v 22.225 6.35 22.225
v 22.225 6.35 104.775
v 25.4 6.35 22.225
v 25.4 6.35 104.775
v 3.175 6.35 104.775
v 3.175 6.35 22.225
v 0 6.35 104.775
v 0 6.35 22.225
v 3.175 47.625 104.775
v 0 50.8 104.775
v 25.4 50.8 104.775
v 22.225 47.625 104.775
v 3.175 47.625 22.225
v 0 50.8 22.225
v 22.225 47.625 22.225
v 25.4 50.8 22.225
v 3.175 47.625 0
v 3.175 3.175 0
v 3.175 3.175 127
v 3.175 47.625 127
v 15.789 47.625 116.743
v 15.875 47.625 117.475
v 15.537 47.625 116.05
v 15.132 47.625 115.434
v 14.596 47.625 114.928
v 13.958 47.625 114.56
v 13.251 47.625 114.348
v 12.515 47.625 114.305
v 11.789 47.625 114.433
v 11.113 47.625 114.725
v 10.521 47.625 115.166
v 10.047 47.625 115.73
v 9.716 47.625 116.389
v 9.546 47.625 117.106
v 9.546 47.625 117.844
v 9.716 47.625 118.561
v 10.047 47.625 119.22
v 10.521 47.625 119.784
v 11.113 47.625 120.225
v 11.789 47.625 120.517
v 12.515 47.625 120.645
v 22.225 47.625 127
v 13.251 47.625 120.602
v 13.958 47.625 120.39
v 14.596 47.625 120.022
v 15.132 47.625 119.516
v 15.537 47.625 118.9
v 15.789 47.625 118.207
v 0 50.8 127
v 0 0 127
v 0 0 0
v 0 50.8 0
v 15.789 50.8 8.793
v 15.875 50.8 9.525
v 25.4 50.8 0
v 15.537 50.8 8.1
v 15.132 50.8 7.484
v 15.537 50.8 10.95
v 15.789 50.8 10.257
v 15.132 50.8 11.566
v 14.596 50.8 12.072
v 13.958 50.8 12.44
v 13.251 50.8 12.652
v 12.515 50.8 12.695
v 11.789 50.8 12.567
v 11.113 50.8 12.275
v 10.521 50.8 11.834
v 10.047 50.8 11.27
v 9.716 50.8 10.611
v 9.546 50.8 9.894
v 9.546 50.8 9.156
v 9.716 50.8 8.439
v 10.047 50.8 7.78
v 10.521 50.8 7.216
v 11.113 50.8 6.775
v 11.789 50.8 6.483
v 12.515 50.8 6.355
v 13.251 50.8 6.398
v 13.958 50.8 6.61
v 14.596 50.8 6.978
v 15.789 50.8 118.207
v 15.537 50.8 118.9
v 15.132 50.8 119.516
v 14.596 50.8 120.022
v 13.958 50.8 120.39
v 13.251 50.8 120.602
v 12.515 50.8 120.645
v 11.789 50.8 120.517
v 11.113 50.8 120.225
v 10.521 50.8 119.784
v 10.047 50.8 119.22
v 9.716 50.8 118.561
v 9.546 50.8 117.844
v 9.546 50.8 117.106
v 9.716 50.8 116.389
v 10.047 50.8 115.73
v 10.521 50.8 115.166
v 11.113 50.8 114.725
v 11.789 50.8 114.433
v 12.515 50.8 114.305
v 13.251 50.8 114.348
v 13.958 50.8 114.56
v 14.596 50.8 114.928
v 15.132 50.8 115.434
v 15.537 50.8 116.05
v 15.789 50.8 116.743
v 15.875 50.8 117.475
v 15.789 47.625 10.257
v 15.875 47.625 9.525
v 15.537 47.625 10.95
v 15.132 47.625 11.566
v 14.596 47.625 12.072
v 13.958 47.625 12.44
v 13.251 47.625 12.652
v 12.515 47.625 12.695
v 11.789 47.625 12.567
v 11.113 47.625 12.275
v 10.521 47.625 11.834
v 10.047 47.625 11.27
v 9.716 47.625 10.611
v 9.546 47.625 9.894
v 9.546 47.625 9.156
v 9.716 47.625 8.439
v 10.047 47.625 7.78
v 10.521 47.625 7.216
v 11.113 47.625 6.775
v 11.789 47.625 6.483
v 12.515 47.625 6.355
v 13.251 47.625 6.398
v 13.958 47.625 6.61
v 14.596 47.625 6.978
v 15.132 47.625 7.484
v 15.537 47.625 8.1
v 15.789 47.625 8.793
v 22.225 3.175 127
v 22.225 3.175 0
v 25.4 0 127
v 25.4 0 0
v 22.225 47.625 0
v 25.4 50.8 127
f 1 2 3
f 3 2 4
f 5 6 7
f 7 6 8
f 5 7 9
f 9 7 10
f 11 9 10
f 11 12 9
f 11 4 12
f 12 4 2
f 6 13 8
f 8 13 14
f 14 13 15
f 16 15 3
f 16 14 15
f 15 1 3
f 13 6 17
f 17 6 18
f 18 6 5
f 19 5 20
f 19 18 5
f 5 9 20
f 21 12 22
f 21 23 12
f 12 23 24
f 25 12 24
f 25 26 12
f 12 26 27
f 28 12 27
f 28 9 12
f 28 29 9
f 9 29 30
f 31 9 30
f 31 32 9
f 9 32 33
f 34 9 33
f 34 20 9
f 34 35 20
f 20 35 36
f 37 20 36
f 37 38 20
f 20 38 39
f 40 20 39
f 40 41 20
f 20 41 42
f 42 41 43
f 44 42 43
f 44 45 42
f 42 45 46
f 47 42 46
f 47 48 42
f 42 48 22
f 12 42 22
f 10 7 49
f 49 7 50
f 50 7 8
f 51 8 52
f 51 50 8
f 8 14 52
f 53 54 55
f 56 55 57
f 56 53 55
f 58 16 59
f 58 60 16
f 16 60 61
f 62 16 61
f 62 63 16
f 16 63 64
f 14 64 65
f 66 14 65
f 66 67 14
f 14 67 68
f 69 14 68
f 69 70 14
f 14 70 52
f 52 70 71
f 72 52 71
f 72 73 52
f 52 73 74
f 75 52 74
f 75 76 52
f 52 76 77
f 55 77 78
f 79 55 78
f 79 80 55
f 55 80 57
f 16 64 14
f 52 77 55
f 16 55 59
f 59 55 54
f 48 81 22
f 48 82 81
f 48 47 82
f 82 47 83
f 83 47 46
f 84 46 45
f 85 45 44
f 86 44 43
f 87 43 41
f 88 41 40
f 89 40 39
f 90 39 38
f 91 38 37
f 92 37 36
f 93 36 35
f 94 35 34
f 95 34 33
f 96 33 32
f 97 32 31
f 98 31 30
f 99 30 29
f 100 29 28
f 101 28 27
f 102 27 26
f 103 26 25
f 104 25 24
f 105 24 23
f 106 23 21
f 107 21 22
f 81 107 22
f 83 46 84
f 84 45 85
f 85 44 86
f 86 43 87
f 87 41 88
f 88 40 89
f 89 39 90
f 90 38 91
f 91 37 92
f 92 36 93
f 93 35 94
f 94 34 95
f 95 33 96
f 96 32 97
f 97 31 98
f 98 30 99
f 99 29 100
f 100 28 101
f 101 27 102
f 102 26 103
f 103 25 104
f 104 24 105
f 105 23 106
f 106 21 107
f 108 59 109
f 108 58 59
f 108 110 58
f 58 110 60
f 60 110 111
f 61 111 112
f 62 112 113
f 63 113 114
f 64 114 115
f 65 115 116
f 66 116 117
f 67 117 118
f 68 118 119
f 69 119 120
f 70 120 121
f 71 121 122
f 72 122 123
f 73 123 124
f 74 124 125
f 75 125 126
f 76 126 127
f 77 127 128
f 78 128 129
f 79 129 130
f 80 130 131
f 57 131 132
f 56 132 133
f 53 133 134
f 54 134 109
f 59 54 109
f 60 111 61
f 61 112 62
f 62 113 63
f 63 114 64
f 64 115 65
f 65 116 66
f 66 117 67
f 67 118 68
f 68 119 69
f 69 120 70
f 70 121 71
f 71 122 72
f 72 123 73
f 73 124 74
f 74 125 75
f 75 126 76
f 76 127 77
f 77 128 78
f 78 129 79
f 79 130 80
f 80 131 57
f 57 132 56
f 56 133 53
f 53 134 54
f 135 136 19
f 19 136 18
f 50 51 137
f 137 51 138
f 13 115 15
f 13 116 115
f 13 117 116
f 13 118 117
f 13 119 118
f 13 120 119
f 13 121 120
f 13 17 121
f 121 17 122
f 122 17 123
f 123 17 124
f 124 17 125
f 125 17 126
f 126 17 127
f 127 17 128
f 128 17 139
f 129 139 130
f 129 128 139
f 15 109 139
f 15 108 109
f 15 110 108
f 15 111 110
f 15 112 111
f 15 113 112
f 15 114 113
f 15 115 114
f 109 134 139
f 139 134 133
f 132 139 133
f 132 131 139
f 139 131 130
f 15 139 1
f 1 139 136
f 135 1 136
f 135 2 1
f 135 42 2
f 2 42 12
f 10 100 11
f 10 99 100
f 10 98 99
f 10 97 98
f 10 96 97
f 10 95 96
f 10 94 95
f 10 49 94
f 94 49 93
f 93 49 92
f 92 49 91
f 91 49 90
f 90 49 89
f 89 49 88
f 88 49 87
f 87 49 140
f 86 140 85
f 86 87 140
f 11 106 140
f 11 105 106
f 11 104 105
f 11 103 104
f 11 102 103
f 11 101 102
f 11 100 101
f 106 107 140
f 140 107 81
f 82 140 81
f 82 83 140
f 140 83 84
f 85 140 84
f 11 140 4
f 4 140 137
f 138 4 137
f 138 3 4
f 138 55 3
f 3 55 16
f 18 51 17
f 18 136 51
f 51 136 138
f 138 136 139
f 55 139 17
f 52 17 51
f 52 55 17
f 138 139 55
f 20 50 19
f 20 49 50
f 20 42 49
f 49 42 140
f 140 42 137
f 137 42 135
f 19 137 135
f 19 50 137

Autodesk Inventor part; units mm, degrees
ref_plane "YZ Plane" through (0, 0, 0) normal (1, 0, 0) x (0, 1, 0)
ref_plane "XZ Plane" through (0, 0, 0) normal (0, 1, 0) x (-1, 0, 0)
ref_plane "XY Plane" through (0, 0, 0) normal (0, 0, 1) x (1, 0, 0)
sketch "Sketch1" plane through (0, 0, 0) normal (0, 0, 1) x (1, 0, 0)
  line L0 (0, 0) -> (25.4, 0)
  line L1 (25.4, 0) -> (25.4, 50.8)
  line L2 (25.4, 50.8) -> (0, 50.8)
  line L3 (0, 50.8) -> (0, 0)
  dimension "d0" = 25.4
  dimension "d1" = 50.8
extrude "Extrusion1" add sketch "Sketch1" along normal blind 127
shell "Shell1" thickness 3.175 removed faces 2 at (8.4667, 33.8667, 0) at (8.4667, 33.8667, 127)
sketch "Sketch3" plane through (0, 50.8, 0) normal (0, 1, 0) x (1, 0, 0)
  line L0 (0, -127) -> (25.4, -127) projected
  line L1 (25.4, 0) -> (25.4, -127) projected
  line L2 (25.4, 0) -> (0, 0) projected
  line L3 (0, 0) -> (0, -127) projected
  circle A0 centre (12.7, -9.525) radius 3.175
  circle A1 centre (12.7, -117.475) radius 3.175
  dimension "d10" = 6.35
  dimension "d11" = 12.7
  dimension "d12" = 9.525
  dimension "d13" = 12.7
  dimension "d14" = 9.525
sketch "Sketch2" plane through (25.4, 0, 0) normal (1, 0, 0) x (0, 0, -1)
  line L0 (-127, 50.8) -> (-127, 0) projected
  line L1 (0, 0) -> (-127, 0) projected
  line L2 (0, 0) -> (0, 50.8) projected
  line L3 (0, 50.8) -> (-127, 50.8) projected
  line L4 (-104.775, 50.8) -> (-22.225, 50.8)
  line L5 (-22.225, 50.8) -> (-22.225, 6.35)
  line L6 (-22.225, 6.35) -> (-104.775, 6.35)
  line L7 (-104.775, 6.35) -> (-104.775, 50.8)
  line L8 (-22.225, 35.4291) -> (0, 35.4291) construction
  line L9 (-104.775, 35.4291) -> (-127, 35.4291) construction
  dimension "d5" = 6.35
  dimension "d19" = 82.55
extrude "Extrusion3" cut sketch "Sketch3" against normal up to next contours A0 | A1
extrude "Extrusion4" cut sketch "Sketch2" against normal through all contours L3 L5 L6 L7
properties part number "Frame_BatteryMount" material "Aluminum-6061"
